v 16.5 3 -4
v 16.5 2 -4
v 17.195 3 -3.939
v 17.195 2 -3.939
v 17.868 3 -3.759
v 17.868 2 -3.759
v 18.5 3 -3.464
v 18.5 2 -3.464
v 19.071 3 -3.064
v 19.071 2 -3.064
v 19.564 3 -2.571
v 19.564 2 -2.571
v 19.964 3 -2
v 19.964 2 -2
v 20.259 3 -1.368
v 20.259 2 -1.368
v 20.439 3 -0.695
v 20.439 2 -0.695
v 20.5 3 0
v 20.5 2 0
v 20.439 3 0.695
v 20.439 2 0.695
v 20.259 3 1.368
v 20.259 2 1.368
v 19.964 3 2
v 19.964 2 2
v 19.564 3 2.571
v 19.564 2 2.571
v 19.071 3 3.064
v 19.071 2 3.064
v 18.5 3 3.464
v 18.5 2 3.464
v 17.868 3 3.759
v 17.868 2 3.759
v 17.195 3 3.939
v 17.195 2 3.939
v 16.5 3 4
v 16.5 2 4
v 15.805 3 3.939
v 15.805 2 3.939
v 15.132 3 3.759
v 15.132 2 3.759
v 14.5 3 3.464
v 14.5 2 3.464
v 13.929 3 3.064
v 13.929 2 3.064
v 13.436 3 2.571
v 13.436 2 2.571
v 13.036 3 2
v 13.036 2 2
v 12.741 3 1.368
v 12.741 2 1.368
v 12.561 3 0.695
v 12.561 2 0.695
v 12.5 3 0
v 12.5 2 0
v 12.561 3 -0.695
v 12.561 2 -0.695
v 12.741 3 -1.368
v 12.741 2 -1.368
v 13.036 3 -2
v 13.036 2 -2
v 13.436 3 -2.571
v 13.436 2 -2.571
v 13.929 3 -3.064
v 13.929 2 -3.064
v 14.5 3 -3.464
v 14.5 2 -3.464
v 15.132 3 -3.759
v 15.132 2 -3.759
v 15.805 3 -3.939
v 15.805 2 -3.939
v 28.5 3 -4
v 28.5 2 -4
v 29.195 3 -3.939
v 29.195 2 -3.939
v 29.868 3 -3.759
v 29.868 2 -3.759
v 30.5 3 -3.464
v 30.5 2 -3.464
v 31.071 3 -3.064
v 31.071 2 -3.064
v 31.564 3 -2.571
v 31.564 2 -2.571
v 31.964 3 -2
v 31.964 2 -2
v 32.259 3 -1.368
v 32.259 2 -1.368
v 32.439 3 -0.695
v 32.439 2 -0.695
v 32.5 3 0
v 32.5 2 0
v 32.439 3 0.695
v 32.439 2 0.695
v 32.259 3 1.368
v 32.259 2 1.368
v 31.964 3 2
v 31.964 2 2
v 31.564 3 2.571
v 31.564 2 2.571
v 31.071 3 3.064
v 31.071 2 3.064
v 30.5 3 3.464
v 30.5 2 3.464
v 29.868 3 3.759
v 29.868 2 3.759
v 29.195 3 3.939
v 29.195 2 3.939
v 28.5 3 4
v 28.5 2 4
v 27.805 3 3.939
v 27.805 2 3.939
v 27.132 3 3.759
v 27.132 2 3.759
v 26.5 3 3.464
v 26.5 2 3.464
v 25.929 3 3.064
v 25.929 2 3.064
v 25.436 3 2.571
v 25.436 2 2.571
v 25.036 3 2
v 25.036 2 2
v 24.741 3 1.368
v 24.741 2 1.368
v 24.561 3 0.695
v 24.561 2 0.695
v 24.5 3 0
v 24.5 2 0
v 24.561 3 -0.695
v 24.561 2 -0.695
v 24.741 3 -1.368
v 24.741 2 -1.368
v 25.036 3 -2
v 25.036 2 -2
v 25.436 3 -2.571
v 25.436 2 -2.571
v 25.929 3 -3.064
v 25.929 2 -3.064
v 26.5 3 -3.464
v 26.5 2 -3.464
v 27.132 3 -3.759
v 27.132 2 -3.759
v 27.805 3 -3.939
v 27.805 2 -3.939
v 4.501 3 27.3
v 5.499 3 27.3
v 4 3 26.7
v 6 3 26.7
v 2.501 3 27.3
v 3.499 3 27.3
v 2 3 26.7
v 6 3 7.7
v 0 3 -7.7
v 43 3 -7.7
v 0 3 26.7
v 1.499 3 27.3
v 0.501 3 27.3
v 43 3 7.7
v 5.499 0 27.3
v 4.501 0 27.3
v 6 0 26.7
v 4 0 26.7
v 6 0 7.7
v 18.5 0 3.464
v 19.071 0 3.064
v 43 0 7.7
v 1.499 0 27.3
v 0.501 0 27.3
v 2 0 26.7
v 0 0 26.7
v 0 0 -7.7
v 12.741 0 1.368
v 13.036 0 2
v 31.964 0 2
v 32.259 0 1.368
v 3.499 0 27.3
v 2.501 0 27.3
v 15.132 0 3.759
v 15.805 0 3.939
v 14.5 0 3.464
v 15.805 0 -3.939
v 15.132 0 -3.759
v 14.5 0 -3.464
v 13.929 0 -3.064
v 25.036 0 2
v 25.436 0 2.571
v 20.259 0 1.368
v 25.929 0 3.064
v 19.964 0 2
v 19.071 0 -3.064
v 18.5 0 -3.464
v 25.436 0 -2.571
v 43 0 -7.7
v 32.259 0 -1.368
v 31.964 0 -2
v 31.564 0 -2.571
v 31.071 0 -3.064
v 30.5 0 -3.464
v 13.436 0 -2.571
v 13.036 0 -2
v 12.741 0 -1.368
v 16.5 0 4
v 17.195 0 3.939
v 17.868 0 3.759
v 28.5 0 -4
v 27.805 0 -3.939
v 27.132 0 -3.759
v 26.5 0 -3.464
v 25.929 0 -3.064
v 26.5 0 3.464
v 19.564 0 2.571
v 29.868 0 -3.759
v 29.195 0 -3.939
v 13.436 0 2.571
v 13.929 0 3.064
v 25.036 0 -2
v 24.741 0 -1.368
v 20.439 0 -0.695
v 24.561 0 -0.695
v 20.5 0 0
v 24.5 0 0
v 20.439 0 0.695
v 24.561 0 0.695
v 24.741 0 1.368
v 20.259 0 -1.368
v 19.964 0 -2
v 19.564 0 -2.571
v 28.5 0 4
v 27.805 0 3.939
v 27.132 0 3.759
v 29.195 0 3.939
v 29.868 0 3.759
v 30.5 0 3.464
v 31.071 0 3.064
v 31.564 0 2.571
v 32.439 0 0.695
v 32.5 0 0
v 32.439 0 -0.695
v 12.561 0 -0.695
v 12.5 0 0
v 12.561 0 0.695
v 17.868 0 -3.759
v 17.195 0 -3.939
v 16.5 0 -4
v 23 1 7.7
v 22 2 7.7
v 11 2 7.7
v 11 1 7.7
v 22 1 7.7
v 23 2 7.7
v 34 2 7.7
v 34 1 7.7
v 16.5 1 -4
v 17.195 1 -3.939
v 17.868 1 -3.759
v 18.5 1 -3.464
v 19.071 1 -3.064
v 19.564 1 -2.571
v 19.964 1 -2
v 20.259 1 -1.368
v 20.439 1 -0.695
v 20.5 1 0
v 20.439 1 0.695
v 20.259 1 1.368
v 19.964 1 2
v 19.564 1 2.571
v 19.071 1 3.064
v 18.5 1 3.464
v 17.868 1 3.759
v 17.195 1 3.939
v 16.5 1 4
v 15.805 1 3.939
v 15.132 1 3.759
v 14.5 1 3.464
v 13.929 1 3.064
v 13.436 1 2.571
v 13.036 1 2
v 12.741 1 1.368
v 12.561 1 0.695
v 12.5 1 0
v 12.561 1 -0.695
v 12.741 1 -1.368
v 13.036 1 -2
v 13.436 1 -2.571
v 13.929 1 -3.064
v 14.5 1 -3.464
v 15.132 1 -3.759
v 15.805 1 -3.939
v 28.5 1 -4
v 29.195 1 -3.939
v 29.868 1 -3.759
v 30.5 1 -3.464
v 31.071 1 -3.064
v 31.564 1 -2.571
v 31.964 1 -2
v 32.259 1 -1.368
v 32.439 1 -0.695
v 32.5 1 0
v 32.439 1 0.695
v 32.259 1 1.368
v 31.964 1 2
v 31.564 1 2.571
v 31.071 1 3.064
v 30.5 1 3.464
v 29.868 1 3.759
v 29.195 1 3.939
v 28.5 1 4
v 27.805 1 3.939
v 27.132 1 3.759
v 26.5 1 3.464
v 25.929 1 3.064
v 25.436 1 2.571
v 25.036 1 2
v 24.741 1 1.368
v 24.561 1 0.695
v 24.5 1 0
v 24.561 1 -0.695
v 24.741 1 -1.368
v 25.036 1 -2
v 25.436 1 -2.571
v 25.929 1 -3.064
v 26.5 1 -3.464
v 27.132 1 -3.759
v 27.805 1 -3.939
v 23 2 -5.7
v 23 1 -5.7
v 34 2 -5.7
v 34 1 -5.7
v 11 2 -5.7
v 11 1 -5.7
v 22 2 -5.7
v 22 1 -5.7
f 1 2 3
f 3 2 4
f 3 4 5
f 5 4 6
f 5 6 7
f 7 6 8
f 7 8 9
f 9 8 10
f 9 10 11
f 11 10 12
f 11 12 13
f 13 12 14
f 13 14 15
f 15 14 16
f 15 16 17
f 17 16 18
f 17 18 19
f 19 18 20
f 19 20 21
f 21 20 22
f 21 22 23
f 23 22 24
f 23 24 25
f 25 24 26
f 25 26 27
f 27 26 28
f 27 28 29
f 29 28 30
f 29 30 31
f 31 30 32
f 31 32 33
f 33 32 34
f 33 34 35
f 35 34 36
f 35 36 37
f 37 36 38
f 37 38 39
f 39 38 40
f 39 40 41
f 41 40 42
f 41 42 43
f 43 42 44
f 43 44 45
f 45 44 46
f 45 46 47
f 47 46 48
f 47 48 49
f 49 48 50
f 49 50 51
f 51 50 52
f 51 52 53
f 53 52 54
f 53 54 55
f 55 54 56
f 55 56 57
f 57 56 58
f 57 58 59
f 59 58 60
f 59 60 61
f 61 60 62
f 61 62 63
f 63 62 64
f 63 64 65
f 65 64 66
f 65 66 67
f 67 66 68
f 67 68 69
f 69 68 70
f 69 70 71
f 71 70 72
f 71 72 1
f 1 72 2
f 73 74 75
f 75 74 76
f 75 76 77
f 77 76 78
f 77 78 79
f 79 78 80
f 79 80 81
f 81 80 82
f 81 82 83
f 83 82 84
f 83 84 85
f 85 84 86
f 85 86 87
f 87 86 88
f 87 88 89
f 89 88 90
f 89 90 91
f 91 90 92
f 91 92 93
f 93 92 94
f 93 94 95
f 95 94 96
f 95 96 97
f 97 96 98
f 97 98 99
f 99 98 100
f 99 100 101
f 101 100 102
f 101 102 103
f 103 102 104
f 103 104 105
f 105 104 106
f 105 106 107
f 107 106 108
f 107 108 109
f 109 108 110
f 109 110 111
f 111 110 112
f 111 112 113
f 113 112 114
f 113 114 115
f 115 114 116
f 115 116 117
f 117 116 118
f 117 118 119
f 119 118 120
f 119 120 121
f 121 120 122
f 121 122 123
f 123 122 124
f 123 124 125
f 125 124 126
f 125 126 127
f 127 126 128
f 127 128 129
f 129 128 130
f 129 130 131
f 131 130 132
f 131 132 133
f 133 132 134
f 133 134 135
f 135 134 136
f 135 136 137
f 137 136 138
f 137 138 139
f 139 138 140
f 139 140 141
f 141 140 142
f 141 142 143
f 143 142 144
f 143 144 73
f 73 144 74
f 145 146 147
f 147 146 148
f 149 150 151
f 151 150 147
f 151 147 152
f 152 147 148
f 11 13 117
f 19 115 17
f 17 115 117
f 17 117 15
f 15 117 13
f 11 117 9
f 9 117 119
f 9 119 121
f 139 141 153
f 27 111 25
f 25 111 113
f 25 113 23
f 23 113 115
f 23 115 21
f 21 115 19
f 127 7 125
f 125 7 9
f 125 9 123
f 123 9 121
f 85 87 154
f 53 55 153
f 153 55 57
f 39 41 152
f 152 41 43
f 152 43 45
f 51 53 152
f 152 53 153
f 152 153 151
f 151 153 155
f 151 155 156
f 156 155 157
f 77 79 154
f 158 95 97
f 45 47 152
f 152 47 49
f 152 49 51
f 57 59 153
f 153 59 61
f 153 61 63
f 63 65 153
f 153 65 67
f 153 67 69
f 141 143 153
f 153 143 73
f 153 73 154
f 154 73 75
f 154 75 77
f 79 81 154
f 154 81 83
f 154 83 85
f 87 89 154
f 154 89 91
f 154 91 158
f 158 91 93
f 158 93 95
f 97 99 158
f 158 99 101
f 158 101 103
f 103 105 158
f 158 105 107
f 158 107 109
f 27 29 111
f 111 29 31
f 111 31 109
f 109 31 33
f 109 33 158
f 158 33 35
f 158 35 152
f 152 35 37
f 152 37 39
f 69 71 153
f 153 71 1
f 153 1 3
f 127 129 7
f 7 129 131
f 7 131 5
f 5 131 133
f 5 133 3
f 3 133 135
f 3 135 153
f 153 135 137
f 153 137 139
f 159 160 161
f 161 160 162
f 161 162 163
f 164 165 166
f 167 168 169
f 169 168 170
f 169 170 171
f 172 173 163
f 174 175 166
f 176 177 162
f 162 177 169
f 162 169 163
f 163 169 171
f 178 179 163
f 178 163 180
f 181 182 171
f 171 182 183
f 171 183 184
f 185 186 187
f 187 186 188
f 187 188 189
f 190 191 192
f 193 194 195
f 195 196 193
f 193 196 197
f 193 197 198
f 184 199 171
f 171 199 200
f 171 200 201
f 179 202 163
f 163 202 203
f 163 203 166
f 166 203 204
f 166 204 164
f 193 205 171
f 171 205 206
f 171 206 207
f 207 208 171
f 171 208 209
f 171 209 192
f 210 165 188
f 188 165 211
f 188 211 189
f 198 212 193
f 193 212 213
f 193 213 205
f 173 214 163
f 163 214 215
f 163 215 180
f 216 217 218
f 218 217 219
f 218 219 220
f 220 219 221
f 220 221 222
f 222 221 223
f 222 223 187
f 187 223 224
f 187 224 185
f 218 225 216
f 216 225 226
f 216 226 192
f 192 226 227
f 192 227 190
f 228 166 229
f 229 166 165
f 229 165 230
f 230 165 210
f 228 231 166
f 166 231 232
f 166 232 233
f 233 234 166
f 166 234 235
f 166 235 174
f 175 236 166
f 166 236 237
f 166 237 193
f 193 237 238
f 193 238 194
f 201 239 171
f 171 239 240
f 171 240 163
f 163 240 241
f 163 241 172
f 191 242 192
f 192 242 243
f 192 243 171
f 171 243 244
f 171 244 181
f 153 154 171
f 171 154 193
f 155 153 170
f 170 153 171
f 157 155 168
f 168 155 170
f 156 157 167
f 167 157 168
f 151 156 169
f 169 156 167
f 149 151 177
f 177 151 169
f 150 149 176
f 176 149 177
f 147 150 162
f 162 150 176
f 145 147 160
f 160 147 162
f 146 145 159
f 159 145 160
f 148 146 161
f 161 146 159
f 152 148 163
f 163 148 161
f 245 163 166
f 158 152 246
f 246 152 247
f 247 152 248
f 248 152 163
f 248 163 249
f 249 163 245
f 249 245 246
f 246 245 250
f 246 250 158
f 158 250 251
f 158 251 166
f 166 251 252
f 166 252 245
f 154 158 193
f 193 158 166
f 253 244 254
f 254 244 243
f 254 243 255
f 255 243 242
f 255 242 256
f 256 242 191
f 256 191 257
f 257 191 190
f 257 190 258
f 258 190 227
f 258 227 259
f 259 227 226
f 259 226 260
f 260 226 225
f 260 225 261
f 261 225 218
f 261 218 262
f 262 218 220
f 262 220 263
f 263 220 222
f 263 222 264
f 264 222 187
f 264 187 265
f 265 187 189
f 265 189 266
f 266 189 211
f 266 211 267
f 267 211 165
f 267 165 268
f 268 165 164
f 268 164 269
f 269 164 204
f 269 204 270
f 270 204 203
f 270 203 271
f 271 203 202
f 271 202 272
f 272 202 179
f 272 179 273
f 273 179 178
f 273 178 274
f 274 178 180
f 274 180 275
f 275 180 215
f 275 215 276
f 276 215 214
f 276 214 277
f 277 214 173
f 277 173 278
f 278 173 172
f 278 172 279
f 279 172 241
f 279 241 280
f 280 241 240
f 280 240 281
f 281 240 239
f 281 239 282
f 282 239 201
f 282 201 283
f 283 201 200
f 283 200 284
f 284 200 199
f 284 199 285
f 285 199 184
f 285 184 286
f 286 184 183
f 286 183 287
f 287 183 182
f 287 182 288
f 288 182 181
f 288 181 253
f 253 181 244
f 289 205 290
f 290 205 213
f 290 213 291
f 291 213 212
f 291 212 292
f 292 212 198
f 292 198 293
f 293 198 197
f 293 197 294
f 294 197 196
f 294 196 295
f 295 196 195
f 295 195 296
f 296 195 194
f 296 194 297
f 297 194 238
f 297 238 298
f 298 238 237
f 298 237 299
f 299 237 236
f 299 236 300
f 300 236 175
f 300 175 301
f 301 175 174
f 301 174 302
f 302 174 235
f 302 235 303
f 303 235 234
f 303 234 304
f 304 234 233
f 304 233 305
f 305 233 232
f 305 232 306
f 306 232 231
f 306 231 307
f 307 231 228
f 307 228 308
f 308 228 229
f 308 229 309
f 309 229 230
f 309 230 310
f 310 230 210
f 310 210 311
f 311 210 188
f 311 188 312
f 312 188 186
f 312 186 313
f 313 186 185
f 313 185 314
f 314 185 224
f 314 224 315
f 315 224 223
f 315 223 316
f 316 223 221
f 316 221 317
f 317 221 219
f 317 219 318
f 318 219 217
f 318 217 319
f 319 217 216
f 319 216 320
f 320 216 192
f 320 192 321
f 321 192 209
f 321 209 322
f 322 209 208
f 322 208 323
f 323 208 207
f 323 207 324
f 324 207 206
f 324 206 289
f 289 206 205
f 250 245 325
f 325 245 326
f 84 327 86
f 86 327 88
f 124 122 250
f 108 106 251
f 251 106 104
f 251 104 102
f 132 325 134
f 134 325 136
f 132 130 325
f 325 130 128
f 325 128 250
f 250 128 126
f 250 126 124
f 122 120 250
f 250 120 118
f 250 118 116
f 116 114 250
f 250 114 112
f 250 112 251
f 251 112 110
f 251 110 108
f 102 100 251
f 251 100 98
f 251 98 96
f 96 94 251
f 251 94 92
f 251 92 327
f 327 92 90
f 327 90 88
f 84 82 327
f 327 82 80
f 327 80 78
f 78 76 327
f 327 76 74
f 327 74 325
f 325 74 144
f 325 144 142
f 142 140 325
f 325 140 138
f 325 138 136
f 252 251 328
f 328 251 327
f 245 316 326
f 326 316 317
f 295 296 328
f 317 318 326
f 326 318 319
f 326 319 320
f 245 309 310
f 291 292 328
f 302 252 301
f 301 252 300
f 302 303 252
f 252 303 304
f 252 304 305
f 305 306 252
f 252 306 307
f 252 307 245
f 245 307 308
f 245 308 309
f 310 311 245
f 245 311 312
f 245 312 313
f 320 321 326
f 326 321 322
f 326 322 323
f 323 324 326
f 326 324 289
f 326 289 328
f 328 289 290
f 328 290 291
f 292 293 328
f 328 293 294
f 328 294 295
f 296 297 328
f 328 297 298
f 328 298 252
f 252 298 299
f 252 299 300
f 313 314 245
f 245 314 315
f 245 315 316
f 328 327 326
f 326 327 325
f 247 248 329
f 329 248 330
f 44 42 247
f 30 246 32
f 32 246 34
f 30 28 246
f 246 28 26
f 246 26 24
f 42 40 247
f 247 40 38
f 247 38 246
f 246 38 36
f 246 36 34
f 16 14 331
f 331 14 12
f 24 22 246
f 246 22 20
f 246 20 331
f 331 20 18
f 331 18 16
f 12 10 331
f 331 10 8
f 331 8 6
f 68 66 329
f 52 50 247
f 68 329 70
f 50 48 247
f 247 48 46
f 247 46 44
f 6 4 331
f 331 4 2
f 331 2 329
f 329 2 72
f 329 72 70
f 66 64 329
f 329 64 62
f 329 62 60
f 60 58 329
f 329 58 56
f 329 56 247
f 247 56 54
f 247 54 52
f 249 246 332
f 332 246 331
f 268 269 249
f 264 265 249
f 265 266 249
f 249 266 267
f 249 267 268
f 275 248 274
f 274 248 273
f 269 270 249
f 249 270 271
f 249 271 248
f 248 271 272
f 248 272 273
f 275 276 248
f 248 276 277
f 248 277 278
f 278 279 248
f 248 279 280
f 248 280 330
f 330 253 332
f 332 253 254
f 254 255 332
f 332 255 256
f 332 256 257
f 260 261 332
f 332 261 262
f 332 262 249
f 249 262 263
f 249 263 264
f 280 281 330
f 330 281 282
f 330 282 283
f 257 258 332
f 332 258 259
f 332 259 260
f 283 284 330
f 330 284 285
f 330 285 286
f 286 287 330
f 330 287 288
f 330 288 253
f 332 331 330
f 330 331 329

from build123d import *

# Parameters (mm, degrees)
SKETCH1_R           = 4
BOSS_EXTRUDE1_DEPTH = 3
SKETCH2_W           = 11
SKETCH2_H           = 1
CUT_EXTRUDE1_DEPTH  = 13.4


with BuildPart() as part:
    # Sketch1 → Boss-Extrude1 (new body)
    with BuildSketch(Plane(origin=(0, 0, 0), x_dir=(1, 0, 0), z_dir=(0, 1, 0))):
        Polygon((43, 7.7), (43, -7.7), (6, -7.7), (6, -26.7), (5.499093619, -27.3), (4.500906381, -27.3), (4, -26.7), (3.499093619, -27.3), (2.500906381, -27.3), (2, -26.7), (1.499093619, -27.3), (0.500906381, -27.3), (0, -26.7), (0, 7.7), align=None)
        with Locations(Location((16.5, 0, 0), (0, 0, 270))):
            Circle(SKETCH1_R, mode=Mode.SUBTRACT)
        with Locations(Location((28.5, 0, 0), (0, 0, 270))):
            Circle(SKETCH1_R, mode=Mode.SUBTRACT)
    extrude(amount=BOSS_EXTRUDE1_DEPTH)

    # Sketch2 → Cut-Extrude1 (cut)
    with BuildSketch(Plane.XY.offset(7.7)):
        with Locations((16.5, 1.5)):
            Rectangle(SKETCH2_W, SKETCH2_H)
        with Locations((28.5, 1.5)):
            Rectangle(SKETCH2_W, SKETCH2_H)
    extrude(amount=-CUT_EXTRUDE1_DEPTH, mode=Mode.SUBTRACT)


solid = part.part
